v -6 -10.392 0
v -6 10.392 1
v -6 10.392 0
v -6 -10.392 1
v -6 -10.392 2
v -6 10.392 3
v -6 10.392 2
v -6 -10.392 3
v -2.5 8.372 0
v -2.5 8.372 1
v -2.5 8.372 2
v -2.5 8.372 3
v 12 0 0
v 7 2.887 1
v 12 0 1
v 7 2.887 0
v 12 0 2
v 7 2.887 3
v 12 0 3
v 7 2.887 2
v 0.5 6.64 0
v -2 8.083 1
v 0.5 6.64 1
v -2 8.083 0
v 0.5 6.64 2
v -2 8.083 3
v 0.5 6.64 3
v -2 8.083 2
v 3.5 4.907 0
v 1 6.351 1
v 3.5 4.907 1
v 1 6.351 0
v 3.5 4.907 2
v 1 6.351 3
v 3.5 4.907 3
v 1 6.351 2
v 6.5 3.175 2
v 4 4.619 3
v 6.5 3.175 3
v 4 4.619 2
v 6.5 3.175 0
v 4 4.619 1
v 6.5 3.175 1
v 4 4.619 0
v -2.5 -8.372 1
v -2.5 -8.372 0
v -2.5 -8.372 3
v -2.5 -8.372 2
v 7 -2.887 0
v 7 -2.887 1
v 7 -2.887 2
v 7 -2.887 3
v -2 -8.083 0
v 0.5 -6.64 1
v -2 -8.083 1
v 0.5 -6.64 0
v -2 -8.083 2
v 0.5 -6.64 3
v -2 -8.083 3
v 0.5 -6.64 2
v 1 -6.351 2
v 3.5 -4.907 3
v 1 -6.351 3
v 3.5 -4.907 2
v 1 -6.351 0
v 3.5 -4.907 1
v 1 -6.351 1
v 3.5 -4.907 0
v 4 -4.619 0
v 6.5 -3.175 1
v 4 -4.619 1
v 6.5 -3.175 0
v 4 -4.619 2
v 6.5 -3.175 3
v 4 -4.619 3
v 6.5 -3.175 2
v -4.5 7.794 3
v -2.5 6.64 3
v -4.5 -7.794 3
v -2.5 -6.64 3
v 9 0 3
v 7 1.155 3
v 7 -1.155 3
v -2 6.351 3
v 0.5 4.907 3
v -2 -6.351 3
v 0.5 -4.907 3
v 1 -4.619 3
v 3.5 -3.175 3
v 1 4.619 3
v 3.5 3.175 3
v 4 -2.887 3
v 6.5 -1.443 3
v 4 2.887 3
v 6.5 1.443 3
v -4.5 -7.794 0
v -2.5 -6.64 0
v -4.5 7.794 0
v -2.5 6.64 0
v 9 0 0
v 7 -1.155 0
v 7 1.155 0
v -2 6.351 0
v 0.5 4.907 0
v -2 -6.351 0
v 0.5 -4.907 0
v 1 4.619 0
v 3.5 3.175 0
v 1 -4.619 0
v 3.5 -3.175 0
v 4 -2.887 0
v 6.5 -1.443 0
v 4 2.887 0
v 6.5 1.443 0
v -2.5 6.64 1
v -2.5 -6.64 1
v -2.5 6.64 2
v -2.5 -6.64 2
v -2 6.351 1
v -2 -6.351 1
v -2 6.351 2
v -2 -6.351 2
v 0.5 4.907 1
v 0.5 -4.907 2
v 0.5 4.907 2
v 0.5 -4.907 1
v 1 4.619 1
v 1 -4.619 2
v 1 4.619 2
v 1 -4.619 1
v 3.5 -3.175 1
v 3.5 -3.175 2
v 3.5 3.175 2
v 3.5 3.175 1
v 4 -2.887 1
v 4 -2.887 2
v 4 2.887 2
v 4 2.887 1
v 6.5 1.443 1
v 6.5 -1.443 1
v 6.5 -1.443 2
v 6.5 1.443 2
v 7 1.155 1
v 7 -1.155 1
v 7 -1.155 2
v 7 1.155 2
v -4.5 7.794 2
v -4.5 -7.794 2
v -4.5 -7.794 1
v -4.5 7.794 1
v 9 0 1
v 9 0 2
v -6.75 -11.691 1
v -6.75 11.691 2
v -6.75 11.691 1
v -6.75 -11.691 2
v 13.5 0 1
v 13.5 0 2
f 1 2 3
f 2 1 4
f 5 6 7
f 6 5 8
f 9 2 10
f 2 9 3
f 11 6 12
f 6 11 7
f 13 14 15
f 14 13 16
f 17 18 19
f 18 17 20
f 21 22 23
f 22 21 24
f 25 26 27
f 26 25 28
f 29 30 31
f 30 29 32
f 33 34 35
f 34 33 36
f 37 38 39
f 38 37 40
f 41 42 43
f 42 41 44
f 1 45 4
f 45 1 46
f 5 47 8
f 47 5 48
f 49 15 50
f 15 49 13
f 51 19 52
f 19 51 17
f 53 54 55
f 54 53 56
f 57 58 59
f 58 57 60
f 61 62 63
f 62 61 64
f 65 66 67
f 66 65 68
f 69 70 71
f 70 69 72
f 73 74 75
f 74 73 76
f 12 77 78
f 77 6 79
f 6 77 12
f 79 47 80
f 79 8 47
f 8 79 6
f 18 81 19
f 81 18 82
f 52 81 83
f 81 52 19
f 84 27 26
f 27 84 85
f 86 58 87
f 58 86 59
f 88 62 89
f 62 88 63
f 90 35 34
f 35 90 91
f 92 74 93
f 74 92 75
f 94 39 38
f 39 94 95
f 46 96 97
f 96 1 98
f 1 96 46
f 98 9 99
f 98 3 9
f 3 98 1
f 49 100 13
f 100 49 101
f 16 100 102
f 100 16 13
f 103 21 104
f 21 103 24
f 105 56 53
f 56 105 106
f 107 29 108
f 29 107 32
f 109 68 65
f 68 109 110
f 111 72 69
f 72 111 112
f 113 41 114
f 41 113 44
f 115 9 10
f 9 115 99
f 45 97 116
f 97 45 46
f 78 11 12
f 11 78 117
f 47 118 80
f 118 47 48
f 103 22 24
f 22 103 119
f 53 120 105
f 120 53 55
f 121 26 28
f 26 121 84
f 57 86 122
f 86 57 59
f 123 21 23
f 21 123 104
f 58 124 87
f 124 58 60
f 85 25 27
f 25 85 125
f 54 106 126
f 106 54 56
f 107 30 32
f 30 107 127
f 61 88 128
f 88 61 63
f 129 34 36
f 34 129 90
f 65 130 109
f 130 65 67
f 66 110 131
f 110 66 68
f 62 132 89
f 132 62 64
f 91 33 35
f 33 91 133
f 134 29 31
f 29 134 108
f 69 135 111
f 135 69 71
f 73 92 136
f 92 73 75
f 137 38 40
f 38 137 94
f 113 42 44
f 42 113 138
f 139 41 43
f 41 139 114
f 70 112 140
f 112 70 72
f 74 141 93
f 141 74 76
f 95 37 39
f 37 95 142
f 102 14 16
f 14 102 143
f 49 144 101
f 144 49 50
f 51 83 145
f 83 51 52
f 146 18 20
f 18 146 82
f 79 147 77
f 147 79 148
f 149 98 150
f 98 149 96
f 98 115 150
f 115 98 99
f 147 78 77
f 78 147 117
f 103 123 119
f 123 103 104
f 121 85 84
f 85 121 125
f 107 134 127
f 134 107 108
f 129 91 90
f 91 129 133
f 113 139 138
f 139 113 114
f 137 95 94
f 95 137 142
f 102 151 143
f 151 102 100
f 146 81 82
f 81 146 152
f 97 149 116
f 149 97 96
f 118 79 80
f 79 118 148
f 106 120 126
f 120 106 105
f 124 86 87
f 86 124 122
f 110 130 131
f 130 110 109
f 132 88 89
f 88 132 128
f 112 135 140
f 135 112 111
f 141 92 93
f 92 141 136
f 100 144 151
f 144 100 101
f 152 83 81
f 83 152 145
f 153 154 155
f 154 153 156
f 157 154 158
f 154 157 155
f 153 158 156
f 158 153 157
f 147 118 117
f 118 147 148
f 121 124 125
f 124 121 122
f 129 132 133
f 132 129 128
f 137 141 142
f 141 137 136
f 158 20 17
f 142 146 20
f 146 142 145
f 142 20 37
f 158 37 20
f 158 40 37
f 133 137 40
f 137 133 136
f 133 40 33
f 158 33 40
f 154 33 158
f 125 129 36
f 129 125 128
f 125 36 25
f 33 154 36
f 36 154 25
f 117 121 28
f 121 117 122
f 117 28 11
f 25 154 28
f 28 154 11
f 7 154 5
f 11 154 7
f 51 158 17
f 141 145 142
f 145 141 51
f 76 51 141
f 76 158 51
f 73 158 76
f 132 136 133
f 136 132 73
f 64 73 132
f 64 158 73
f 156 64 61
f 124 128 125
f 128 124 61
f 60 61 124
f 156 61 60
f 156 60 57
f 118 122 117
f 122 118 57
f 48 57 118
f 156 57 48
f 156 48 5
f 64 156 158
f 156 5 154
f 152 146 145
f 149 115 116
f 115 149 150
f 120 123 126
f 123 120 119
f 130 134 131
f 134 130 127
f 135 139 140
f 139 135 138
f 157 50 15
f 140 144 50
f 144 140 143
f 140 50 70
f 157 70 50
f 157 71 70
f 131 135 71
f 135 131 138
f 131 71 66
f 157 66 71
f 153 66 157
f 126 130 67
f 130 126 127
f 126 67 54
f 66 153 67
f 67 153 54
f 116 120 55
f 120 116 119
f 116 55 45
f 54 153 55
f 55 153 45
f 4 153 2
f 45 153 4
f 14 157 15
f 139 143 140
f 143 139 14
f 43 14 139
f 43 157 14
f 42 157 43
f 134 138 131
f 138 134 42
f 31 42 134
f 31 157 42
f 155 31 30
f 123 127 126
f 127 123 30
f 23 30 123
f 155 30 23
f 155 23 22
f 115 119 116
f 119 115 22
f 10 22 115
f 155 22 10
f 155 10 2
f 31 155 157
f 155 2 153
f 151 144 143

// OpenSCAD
//Monolith Vortex

//linear_extrude(3) circle(12, $fn=3) ;

//rotate([0,0,90]) 
{
difference() {
    union() {
    cylinder(h=3, r=12, $fn=3) ;
    }
    translate([-2.5,-15,-1.1]) #cube([0.5,25,5.2]) ;
    translate([ 0.5,-15  ,-1.1]) #cube([0.5,25,5.2]) ;
    translate([ 3.5,-15  ,-1.1])  #cube([0.5,25,5.2]) ;
    translate([ 6.5,-15  ,-1.1]) #cube([0.5,25,5.2]) ;
    //translate([ 6,-15  ,-1.1])  #cube([0.5,25,5.2]) ;
    translate([0,0,-2]) cylinder(h=6, r=9, $fn=3) ;
}

    translate([0,0,1])cylinder(h=1, r=13.5, $fn=3) ;
    }
